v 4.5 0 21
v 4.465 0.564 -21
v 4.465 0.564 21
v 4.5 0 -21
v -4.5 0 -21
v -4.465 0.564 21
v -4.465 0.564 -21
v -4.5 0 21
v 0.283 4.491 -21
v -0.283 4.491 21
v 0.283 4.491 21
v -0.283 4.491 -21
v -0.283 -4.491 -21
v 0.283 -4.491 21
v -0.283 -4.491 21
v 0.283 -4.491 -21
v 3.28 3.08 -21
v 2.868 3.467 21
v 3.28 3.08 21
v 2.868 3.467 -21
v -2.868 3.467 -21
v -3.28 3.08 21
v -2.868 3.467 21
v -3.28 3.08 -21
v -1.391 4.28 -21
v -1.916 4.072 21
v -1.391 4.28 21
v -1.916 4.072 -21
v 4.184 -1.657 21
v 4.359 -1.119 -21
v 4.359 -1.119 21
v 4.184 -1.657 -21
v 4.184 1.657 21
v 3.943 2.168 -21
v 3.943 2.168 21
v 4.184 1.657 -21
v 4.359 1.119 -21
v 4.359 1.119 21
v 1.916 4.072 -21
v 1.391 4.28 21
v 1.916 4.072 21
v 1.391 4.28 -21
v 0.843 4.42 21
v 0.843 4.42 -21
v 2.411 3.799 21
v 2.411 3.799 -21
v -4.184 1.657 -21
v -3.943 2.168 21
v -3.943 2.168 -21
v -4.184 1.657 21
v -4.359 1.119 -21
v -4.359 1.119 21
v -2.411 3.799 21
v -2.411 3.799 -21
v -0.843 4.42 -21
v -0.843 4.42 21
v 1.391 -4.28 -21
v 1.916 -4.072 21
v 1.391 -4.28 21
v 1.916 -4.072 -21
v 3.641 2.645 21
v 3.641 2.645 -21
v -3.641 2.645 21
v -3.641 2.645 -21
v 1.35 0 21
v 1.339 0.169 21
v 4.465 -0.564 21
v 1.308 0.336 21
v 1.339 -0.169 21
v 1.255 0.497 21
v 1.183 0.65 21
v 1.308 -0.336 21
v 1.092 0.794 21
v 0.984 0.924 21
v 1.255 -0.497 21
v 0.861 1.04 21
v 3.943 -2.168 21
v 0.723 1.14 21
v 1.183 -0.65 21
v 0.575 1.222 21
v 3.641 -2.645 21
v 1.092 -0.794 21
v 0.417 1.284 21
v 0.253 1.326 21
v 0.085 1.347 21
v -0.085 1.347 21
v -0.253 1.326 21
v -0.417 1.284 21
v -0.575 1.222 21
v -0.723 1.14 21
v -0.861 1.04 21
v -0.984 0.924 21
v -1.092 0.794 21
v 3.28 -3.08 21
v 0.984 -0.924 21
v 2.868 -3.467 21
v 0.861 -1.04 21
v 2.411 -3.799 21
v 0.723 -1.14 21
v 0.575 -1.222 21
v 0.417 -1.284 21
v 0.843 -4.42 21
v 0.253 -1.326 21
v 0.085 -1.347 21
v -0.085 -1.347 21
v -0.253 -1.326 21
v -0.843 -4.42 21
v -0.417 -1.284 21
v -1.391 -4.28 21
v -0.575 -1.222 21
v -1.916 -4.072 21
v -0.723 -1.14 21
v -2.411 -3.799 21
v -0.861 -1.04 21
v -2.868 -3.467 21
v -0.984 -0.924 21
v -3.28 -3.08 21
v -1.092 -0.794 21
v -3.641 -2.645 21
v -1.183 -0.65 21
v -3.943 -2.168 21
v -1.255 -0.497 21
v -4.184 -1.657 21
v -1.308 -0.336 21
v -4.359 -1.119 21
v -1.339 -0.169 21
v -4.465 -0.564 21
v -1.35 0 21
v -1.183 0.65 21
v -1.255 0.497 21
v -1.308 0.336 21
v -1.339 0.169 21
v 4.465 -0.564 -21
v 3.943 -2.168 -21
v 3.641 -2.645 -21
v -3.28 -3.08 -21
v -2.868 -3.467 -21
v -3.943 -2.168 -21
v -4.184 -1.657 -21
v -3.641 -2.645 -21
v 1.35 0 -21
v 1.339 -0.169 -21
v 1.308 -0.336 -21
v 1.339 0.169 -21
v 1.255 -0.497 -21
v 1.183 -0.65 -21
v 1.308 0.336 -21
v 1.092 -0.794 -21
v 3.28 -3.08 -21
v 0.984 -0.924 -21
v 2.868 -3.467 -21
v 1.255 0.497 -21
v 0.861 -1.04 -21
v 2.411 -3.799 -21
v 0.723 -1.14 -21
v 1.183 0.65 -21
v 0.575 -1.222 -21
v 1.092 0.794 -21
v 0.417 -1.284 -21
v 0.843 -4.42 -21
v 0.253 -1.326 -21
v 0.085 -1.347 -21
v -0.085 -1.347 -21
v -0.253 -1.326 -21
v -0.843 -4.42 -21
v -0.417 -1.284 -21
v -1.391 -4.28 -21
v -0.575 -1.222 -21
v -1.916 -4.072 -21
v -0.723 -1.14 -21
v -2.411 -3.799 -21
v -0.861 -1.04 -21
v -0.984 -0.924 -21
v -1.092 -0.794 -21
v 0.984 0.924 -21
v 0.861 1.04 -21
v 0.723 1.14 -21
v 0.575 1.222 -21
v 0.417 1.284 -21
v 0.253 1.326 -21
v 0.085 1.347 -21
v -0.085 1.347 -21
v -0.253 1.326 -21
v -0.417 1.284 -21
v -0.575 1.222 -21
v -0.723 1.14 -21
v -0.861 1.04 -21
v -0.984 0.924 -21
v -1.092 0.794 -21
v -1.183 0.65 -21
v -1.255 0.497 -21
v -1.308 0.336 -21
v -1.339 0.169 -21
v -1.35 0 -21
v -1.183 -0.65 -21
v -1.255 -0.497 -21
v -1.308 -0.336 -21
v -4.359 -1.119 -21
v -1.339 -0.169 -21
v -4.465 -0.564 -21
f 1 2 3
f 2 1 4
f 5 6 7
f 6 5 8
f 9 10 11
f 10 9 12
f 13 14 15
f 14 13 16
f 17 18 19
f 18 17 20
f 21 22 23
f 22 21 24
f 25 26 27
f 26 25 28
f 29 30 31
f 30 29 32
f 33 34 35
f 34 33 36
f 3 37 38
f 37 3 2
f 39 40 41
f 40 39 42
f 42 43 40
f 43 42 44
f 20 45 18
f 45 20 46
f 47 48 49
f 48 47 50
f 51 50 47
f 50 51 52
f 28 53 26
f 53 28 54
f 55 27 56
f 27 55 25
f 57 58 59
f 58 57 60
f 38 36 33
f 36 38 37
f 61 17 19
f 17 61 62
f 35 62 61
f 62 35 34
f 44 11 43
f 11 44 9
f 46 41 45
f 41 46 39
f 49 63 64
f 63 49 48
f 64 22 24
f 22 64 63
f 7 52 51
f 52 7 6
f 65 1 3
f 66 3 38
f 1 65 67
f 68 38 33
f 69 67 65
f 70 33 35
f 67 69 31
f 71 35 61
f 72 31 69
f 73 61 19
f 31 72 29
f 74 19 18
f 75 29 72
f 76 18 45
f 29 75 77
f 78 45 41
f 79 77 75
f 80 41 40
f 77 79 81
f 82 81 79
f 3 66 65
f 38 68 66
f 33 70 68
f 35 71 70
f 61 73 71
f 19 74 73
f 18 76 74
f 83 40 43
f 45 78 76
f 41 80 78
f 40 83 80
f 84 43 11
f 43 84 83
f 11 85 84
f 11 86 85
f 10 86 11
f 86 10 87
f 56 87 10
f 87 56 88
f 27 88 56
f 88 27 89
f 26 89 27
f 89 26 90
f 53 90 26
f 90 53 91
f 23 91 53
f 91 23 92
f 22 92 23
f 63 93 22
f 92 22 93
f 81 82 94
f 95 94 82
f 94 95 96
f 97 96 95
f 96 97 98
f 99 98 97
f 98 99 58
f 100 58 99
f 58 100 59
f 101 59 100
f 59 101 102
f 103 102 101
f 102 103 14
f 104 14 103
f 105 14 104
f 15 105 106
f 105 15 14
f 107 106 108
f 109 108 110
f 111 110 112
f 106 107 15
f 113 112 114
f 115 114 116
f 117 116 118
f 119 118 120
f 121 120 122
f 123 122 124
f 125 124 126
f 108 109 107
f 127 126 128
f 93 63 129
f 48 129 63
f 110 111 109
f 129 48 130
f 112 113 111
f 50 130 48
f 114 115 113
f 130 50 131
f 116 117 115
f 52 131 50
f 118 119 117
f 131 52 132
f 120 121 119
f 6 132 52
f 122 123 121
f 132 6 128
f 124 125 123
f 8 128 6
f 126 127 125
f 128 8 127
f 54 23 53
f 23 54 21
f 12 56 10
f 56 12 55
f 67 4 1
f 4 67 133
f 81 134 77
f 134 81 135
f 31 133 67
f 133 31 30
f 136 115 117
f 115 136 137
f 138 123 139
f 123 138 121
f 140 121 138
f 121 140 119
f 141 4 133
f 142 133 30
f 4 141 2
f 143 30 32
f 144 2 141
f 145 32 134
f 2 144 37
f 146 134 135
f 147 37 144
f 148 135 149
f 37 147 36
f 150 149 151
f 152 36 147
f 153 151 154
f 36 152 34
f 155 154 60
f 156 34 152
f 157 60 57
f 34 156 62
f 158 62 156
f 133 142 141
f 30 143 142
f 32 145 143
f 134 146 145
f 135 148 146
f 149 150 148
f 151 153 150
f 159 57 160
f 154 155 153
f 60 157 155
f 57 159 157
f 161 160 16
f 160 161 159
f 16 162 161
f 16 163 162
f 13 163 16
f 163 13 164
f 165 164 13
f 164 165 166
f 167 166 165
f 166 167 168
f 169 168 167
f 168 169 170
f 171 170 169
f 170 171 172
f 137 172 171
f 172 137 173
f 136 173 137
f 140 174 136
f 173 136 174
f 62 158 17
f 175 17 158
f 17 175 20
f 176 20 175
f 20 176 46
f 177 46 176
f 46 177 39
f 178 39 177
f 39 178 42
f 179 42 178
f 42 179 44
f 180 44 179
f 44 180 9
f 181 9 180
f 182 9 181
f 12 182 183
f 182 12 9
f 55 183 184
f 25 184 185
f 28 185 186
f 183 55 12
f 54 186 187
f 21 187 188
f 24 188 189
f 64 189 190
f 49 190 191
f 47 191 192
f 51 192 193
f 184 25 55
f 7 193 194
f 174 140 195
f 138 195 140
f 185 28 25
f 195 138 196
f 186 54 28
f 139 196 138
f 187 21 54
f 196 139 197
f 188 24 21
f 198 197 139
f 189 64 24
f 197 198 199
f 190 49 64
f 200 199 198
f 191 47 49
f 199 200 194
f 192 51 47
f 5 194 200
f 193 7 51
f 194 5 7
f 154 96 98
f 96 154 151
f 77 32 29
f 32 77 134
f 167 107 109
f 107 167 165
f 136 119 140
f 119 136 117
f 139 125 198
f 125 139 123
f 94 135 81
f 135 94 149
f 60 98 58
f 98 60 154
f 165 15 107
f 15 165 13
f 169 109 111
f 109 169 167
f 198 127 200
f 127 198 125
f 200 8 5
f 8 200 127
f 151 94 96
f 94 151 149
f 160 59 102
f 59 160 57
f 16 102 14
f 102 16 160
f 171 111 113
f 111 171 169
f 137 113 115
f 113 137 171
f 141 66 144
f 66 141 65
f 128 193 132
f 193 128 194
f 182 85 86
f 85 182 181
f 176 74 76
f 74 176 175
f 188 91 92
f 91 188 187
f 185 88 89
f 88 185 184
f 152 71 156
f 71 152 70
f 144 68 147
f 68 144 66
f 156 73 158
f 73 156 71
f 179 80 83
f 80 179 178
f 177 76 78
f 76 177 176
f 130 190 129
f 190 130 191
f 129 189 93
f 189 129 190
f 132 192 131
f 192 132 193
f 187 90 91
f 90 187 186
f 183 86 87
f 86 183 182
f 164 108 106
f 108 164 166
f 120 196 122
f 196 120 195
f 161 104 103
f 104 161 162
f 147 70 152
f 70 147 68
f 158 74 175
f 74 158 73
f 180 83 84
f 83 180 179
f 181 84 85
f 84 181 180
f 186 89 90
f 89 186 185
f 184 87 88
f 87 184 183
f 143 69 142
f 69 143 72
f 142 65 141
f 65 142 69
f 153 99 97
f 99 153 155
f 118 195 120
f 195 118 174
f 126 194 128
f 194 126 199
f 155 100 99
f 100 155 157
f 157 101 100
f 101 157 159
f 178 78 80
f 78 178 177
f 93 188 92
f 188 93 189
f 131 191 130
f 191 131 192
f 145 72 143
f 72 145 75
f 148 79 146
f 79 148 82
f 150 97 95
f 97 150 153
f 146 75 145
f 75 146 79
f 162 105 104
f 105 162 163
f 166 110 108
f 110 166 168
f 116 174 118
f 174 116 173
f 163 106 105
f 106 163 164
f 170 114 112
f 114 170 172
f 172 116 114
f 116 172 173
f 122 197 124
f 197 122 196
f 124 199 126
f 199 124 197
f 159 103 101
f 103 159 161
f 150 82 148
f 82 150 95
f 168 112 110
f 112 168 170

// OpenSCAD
$fn = 50;


difference() {
	union() {
		translate(v = [0, 0, -21.0000000000]) {
			cylinder(h = 42, r = 4.5000000000);
		}
	}
	union() {
		translate(v = [0, 0, -100.0000000000]) {
			cylinder(h = 200, r = 1.3500000000);
		}
	}
}
